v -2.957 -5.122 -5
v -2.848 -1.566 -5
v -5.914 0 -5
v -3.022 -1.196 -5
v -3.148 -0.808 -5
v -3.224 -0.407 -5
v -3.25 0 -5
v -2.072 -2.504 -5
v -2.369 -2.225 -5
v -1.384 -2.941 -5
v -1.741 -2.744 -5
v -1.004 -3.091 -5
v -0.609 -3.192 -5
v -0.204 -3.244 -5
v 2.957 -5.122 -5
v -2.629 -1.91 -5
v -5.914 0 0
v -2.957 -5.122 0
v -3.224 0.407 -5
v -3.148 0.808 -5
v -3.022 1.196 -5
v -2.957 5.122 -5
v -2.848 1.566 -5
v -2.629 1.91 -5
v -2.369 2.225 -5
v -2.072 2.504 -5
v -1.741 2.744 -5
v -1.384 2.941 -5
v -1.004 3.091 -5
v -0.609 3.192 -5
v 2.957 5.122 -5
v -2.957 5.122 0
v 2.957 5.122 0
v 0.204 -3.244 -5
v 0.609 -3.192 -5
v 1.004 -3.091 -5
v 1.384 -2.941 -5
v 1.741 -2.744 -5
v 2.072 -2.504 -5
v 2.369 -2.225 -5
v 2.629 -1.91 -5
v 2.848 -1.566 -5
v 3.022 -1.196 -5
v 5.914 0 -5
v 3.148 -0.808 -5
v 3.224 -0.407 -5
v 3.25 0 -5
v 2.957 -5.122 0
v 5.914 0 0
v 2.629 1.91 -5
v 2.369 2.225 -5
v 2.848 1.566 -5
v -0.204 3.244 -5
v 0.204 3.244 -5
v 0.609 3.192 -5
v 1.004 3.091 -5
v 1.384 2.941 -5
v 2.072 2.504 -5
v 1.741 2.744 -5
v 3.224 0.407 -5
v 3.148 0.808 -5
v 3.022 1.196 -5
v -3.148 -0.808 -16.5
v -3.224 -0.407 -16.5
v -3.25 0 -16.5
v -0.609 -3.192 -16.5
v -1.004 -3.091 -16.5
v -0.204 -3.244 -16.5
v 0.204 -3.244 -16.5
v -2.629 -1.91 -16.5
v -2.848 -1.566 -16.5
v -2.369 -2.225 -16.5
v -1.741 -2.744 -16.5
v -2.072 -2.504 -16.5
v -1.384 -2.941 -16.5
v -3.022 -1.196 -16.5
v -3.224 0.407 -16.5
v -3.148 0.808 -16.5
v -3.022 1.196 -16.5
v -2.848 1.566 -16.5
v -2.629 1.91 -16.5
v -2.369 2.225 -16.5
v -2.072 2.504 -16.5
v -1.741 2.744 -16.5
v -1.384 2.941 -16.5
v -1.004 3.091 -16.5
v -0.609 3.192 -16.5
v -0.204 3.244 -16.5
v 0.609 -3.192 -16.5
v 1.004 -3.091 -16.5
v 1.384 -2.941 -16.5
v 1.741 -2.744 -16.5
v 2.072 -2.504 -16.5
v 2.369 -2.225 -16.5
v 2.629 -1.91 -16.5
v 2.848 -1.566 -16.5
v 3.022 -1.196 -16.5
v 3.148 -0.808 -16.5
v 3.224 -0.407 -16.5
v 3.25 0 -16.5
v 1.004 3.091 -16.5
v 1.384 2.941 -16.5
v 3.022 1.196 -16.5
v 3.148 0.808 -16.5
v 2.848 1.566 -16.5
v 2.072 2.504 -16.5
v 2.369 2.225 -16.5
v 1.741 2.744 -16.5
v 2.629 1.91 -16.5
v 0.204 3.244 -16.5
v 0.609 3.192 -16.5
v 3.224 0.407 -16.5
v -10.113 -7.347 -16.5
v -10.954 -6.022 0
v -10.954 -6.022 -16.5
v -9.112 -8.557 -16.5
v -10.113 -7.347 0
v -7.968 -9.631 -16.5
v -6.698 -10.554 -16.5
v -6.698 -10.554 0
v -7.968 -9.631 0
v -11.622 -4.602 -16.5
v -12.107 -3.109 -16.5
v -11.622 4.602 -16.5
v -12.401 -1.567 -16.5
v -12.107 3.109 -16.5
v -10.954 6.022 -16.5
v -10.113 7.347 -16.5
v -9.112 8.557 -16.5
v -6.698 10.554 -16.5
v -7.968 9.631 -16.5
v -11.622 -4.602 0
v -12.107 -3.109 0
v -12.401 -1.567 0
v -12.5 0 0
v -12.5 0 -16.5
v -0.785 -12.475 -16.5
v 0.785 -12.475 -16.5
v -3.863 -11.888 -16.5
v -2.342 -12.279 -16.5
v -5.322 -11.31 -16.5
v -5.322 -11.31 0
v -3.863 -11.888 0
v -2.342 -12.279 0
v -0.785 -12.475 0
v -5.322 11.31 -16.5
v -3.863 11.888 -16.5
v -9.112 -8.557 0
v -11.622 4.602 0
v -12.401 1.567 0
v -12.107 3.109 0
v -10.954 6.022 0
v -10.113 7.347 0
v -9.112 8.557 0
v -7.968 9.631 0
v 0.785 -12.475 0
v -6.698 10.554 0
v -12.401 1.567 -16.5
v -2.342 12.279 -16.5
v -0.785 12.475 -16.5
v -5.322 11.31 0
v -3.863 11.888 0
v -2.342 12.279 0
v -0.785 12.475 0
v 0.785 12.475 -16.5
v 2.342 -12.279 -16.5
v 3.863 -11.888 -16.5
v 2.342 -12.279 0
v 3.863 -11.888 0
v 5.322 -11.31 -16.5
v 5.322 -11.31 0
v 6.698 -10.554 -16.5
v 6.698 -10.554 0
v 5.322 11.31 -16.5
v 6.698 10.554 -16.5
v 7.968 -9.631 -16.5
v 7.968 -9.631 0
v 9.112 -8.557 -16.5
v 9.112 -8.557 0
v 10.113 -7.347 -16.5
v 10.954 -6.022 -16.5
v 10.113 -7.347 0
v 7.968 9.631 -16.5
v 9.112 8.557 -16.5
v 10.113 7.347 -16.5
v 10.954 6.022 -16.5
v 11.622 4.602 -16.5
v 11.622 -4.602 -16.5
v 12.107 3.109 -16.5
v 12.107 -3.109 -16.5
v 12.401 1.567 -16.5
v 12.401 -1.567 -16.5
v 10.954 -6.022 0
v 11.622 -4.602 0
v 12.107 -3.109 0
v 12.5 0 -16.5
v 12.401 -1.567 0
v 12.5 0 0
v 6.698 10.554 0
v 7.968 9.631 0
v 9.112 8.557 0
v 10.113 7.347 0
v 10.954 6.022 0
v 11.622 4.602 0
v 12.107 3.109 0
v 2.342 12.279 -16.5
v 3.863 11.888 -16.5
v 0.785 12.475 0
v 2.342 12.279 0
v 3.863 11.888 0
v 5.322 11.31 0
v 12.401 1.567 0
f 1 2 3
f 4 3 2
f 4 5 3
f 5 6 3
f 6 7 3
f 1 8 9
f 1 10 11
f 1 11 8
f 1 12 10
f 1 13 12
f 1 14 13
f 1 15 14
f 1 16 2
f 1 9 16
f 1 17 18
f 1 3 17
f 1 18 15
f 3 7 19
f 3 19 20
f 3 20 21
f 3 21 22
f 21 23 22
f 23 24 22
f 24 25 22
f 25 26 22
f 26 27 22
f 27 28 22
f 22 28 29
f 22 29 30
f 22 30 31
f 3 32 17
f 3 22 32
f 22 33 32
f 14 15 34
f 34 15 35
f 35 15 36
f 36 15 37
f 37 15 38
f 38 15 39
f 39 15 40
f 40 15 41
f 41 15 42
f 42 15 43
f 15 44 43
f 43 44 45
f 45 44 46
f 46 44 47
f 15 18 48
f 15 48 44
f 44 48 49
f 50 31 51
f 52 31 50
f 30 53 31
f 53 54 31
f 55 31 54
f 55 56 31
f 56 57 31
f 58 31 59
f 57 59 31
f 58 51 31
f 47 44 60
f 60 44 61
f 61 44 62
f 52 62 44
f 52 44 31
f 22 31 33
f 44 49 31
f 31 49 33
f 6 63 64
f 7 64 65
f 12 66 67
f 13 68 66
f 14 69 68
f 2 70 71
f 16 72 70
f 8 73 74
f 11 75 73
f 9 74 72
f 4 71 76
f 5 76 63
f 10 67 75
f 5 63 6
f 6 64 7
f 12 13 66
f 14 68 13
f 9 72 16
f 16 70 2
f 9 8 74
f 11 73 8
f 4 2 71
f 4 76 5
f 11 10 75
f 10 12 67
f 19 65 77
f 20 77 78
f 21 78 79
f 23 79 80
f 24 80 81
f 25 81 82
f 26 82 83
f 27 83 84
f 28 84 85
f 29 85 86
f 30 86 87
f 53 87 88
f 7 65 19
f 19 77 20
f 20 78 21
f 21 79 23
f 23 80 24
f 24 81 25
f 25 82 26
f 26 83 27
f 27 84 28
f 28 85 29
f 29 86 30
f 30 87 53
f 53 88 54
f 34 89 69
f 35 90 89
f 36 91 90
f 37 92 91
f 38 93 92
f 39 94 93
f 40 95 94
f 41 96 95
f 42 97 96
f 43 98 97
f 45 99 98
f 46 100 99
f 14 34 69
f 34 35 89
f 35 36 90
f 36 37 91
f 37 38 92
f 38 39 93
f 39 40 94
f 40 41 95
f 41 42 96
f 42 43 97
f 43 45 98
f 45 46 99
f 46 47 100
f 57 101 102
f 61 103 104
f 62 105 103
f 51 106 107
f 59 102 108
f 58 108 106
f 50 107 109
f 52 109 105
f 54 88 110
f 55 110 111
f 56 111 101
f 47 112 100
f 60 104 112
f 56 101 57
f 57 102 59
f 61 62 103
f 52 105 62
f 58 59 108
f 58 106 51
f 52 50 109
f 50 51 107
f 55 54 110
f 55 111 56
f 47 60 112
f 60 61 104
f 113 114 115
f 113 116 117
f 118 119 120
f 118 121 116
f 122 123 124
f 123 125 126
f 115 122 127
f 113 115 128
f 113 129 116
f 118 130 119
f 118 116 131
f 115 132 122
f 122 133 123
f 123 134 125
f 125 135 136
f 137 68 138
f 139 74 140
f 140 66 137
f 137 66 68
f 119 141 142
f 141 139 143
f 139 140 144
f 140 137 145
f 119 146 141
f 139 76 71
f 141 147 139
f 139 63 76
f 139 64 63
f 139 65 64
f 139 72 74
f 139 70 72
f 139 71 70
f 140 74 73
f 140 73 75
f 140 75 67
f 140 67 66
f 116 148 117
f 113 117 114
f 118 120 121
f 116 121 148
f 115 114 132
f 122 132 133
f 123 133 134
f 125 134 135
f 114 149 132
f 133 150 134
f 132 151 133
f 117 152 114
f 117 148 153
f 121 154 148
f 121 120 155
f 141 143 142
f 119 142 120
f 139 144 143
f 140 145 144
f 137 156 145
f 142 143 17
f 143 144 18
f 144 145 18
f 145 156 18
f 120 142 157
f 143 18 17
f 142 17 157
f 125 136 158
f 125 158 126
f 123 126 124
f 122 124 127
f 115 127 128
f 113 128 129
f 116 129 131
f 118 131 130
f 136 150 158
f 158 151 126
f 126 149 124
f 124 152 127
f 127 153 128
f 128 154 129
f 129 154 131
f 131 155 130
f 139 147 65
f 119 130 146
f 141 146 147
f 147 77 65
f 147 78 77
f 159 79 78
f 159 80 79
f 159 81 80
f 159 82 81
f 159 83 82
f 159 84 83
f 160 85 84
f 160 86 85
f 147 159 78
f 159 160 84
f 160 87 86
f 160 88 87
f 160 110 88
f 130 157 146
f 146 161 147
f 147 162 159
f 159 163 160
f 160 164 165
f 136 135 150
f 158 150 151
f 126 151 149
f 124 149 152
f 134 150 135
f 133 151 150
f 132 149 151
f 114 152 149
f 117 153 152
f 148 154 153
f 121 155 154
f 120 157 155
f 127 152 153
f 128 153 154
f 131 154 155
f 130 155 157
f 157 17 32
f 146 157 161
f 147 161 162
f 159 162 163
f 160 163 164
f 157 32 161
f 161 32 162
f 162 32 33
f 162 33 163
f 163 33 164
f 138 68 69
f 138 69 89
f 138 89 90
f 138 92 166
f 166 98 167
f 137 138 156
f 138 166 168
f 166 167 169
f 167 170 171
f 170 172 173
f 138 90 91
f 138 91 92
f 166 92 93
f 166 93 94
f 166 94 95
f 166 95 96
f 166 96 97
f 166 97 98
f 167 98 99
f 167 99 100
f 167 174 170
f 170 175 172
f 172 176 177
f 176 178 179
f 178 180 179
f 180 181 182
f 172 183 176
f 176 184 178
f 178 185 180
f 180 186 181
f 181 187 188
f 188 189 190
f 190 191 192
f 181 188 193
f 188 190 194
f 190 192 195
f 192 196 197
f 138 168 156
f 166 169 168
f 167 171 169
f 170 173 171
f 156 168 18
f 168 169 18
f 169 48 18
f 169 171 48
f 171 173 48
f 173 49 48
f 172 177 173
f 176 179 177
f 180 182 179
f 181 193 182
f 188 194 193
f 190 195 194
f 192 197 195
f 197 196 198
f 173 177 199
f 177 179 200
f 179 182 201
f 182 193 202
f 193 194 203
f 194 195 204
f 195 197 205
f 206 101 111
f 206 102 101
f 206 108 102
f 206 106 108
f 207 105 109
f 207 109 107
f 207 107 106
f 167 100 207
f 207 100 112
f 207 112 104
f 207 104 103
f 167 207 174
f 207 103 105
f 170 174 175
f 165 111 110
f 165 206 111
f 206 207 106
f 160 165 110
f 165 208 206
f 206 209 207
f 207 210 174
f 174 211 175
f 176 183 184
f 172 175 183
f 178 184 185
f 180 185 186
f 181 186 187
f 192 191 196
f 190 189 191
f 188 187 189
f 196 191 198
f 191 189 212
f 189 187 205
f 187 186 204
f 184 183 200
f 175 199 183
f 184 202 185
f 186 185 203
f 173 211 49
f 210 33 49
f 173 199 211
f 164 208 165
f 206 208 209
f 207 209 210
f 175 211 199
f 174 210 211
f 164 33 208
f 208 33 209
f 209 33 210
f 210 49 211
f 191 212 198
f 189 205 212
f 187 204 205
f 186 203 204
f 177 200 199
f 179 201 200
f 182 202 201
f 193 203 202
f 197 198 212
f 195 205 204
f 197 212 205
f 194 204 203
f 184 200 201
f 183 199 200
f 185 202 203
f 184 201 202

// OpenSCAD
$fn = 50;

difference() {
	union() {
		translate(v = [0, 0, -16.5]) {
			cylinder(h = 16.5, r = 12.5);
		}
	}
	union() {
		translate(v = [0, 0, 0]) {
			rotate(a = [0, 0, 0]) {
				difference() {
					union() {
						translate(v = [0, 0, -5]) {
							linear_extrude(height = 5) {
								polygon(points = [[5.914249999999999, 0.0], [2.957125, 5.1218907443321156], [-2.9571249999999982, 5.1218907443321156], [-5.914249999999999, 7.242867331857232e-16], [-2.9571250000000022, -5.121890744332115], [2.9571249999999956, -5.121890744332118]]);
							}
						}
					}
					union();
				}
			}
		}
		#translate(v = [0, 0, -100.0]) {
			cylinder(h = 200, r = 3.25);
		}
	}
}
